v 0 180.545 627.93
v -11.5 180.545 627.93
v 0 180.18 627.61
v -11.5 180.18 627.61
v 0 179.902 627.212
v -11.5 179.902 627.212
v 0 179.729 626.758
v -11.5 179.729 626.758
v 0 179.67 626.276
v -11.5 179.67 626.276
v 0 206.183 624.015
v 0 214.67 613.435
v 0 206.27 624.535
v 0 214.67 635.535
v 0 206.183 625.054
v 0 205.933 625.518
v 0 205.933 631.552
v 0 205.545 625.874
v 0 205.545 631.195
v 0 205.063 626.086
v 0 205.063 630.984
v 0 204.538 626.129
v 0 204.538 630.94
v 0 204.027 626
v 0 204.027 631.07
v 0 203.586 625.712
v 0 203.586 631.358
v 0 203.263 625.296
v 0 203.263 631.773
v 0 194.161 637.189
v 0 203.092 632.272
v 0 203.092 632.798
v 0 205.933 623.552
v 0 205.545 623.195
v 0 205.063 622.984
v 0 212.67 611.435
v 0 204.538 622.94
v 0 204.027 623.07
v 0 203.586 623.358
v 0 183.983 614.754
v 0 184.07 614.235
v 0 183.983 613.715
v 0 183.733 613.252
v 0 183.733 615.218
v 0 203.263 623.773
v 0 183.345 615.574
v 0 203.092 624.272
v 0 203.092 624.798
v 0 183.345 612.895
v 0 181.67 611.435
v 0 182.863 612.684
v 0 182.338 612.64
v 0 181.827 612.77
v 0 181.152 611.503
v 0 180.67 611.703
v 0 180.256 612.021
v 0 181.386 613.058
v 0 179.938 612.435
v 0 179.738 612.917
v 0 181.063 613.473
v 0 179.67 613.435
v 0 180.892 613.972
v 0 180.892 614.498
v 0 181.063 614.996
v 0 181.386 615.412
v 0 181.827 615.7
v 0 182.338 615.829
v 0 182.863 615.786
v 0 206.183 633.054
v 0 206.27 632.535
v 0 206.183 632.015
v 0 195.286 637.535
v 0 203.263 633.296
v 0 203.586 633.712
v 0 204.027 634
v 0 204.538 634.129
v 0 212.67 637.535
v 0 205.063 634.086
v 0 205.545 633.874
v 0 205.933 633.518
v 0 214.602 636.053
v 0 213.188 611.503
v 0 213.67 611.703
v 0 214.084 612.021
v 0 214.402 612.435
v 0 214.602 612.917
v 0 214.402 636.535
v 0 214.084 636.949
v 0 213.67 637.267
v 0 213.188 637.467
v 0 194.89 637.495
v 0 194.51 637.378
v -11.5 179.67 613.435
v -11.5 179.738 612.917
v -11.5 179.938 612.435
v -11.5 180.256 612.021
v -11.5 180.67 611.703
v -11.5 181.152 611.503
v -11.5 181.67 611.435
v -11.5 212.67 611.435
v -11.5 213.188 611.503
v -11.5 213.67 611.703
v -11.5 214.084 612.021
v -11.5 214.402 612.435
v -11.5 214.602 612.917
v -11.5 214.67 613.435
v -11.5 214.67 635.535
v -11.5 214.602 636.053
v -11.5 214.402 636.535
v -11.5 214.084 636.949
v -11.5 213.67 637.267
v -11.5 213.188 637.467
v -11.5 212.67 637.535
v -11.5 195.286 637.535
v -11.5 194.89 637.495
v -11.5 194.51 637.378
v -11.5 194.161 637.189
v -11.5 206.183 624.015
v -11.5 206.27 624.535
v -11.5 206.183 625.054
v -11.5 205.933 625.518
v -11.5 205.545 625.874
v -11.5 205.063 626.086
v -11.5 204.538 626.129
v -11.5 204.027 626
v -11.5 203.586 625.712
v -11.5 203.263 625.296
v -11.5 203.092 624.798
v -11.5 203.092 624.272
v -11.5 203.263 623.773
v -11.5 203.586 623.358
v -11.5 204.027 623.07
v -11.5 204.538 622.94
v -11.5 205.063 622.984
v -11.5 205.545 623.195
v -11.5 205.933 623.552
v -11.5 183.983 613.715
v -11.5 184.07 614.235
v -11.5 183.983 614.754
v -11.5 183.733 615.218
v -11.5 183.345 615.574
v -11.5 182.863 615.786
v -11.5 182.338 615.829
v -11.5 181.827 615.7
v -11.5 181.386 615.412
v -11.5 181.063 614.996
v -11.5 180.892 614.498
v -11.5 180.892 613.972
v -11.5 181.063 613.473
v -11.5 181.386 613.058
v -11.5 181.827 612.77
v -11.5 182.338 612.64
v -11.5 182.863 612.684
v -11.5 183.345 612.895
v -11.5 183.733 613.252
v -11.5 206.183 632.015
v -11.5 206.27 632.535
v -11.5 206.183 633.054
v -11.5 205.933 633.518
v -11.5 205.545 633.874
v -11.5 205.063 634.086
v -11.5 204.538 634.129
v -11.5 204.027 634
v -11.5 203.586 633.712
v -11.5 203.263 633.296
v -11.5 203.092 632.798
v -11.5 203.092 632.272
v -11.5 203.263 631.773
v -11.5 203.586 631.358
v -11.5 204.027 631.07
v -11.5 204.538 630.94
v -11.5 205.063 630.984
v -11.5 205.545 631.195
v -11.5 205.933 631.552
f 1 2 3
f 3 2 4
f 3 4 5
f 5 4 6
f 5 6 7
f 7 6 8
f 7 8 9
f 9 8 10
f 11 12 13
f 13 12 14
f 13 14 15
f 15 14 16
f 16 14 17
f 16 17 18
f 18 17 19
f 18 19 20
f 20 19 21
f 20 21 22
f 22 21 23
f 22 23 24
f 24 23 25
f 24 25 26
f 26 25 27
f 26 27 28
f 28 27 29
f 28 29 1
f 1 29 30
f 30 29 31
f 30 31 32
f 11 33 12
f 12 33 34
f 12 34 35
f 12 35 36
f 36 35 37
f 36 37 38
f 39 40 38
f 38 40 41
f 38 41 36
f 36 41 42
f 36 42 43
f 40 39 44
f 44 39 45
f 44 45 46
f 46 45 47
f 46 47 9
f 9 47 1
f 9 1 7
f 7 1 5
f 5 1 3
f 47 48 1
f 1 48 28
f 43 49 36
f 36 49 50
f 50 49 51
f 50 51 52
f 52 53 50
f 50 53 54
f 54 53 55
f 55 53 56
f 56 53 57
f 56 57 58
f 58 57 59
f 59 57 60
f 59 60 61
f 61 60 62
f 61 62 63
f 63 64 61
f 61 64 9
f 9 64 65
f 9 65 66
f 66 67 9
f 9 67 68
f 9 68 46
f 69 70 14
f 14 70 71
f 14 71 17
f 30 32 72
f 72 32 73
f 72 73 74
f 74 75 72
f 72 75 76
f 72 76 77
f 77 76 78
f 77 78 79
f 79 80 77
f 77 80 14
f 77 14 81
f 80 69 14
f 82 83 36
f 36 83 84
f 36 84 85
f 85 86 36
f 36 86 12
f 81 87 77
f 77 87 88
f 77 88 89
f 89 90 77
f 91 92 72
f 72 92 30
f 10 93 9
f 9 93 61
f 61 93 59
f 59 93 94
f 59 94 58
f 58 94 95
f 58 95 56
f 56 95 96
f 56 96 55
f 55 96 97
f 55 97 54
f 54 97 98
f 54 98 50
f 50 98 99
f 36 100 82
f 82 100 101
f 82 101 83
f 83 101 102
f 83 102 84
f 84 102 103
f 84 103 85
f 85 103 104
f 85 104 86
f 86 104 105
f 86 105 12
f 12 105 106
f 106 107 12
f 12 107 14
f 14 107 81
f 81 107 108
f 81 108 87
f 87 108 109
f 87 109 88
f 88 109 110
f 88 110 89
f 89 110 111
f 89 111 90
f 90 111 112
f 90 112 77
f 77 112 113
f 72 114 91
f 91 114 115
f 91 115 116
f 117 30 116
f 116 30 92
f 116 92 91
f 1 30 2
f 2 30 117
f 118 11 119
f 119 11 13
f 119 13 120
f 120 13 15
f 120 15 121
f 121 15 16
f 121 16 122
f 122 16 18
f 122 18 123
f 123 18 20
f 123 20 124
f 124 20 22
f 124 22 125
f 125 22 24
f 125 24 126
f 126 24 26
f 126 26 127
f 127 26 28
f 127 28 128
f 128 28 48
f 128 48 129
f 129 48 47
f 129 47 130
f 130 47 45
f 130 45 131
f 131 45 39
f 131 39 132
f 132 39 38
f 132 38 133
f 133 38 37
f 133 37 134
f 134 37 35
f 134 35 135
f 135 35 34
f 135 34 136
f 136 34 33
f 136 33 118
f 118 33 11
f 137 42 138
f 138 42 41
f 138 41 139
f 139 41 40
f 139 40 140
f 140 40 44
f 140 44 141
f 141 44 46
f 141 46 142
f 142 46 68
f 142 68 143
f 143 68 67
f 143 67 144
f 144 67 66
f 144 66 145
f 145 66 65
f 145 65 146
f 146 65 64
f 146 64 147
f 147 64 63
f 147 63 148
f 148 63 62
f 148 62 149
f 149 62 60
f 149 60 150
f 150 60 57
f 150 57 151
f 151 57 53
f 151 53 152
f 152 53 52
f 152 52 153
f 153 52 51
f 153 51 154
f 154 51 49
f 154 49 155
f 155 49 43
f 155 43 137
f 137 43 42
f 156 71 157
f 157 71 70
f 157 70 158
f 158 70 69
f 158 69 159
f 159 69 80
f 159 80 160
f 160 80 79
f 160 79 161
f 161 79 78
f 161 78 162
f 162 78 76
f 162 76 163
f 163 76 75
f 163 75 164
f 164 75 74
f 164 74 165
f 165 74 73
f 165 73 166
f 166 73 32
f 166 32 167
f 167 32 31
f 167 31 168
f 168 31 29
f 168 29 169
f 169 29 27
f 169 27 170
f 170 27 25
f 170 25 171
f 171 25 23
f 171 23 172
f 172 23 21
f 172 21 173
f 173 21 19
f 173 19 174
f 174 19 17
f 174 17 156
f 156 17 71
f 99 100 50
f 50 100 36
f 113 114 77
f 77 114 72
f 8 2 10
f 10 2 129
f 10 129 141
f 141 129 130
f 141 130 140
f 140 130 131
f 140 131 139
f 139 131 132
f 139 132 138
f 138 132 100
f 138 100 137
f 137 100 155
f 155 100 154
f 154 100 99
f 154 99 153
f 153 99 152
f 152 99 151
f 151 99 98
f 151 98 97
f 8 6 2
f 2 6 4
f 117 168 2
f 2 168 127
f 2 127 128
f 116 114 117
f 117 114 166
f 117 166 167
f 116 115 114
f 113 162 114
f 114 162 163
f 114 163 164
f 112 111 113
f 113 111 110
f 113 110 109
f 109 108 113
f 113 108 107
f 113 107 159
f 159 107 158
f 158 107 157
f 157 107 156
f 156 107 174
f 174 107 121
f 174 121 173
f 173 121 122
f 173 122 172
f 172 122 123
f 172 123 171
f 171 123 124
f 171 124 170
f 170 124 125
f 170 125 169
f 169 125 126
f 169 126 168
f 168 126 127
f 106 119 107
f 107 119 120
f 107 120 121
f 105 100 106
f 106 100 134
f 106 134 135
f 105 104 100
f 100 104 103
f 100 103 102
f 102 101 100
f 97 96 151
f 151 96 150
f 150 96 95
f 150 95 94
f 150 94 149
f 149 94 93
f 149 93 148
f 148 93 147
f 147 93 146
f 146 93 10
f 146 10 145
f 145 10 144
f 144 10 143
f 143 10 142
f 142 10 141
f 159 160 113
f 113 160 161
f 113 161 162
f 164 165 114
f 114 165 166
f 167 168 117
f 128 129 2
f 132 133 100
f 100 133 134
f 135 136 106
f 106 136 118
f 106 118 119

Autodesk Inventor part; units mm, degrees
ref_plane "YZ Plane" through (0, 0, 0) normal (1, 0, 0) x (0, 1, 0)
ref_plane "XZ Plane" through (0, 0, 0) normal (0, 1, 0) x (-1, 0, 0)
ref_plane "XY Plane" through (0, 0, 0) normal (0, 0, 1) x (1, 0, 0)
sketch "スケッチ1" plane through (0, 0, 0) normal (1, 0, 0) x (0, 1, 0)
  line L0 (214.6701, 659.5349) -> (214.6701, -648.4651)
  line L1 (214.6701, 627.3349) -> (194.6701, 627.3349)
  line L2 (194.6701, 659.5349) -> (194.6701, -648.4651)
  line L3 (194.6701, 23.5349) -> (214.6701, 23.5349)
  line L4 (194.6701, -648.4651) -> (214.6701, -648.4651)
  line L5 (194.6701, 659.5349) -> (214.6701, 659.5349)
  line L6 (179.6701, 611.4349) -> (207.4701, 611.4349)
  line L7 (207.4701, 611.4349) -> (207.4701, 627.3349)
  line L8 (207.4701, 627.3349) -> (179.6701, 627.3349)
  line L9 (179.6701, 627.3349) -> (179.6701, 611.4349)
  circle A0 centre (182.4701, 614.2349) radius 1.6
  circle A1 centre (204.6701, 624.5349) radius 1.6
  circle A2 centre (204.6701, 632.5349) radius 1.6
  line L10 (179.6701, 77.6349) -> (207.4701, 77.6349)
  line L11 (207.4701, 77.6349) -> (207.4701, 61.7349)
  line L12 (207.4701, 61.7349) -> (179.6701, 61.7349)
  line L13 (179.6701, 61.7349) -> (179.6701, 77.6349)
  circle A3 centre (182.4701, 74.8349) radius 1.5
  circle A4 centre (204.6701, 64.5349) radius 1.5
  circle A5 centre (204.6701, 56.5349) radius 1.5
  line L14 (194.6701, 637.5349) -> (214.6701, 637.5349)
  line L15 (207.4701, 611.4349) -> (214.6701, 611.4349)
  line L16 (214.6701, 611.4349) -> (214.6701, 637.5349)
  line L17 (194.6701, 637.5349) -> (179.6701, 627.3349)
  point P0 (0, 0)
  point P1 (-205.3299, -216.1317)
  dimension "d0" = 672
  dimension "d1" = 27.8
  dimension "d2" = 15.9
  dimension "d3" = 3.2
  dimension "d4" = 3.2
  dimension "d5" = 2.8
  dimension "d6" = 2.8
  dimension "d7" = 2.8
  dimension "d8" = 2.8
  dimension "d9" = 0
  dimension "d10" = 10
  dimension "d11" = 3.2
  dimension "d12" = 8
  dimension "d13" = 10
  dimension "d14" = 27
  dimension "d15" = 27.8
  dimension "d16" = 15.9
  dimension "d17" = 3
  dimension "d18" = 3
  dimension "d19" = 2.8
  dimension "d20" = 2.8
  dimension "d21" = 2.8
  dimension "d22" = 2.8
  dimension "d23" = 10
  dimension "d24" = 560
  dimension "d25" = 3
  dimension "d26" = 8
  dimension "d27" = 10
  dimension "d28" = 5
extrude "押し出し1" add sketch "スケッチ1" against normal blind 11.5 contours L0 L1 L2 L14 | L0 L15 L7 L1 | L2 L8 L17 | L7 L6 L2 L1 | L2 L6 L9 L8
fillet "フィレット1" radius 2 5 edges at (-5.75, 194.6701, 637.5349) (-5.75, 214.6701, 637.5349) (-5.75, 214.6701, 611.4349) (-5.75, 179.6701, 611.4349) (-5.75, 179.6701, 627.3349)
equation "\"d3\" = d11"
equation "\"d4\" = d11"
equation "\"d6\" = d5"
equation "\"d7\" = d5"
equation "\"d8\" = d5"
equation "\"d20\" = d19"
equation "\"d21\" = d19"
equation "\"d22\" = d19"
properties part number "dribl-v1-3DP-l-F-1" material "ABS プラスチック"
